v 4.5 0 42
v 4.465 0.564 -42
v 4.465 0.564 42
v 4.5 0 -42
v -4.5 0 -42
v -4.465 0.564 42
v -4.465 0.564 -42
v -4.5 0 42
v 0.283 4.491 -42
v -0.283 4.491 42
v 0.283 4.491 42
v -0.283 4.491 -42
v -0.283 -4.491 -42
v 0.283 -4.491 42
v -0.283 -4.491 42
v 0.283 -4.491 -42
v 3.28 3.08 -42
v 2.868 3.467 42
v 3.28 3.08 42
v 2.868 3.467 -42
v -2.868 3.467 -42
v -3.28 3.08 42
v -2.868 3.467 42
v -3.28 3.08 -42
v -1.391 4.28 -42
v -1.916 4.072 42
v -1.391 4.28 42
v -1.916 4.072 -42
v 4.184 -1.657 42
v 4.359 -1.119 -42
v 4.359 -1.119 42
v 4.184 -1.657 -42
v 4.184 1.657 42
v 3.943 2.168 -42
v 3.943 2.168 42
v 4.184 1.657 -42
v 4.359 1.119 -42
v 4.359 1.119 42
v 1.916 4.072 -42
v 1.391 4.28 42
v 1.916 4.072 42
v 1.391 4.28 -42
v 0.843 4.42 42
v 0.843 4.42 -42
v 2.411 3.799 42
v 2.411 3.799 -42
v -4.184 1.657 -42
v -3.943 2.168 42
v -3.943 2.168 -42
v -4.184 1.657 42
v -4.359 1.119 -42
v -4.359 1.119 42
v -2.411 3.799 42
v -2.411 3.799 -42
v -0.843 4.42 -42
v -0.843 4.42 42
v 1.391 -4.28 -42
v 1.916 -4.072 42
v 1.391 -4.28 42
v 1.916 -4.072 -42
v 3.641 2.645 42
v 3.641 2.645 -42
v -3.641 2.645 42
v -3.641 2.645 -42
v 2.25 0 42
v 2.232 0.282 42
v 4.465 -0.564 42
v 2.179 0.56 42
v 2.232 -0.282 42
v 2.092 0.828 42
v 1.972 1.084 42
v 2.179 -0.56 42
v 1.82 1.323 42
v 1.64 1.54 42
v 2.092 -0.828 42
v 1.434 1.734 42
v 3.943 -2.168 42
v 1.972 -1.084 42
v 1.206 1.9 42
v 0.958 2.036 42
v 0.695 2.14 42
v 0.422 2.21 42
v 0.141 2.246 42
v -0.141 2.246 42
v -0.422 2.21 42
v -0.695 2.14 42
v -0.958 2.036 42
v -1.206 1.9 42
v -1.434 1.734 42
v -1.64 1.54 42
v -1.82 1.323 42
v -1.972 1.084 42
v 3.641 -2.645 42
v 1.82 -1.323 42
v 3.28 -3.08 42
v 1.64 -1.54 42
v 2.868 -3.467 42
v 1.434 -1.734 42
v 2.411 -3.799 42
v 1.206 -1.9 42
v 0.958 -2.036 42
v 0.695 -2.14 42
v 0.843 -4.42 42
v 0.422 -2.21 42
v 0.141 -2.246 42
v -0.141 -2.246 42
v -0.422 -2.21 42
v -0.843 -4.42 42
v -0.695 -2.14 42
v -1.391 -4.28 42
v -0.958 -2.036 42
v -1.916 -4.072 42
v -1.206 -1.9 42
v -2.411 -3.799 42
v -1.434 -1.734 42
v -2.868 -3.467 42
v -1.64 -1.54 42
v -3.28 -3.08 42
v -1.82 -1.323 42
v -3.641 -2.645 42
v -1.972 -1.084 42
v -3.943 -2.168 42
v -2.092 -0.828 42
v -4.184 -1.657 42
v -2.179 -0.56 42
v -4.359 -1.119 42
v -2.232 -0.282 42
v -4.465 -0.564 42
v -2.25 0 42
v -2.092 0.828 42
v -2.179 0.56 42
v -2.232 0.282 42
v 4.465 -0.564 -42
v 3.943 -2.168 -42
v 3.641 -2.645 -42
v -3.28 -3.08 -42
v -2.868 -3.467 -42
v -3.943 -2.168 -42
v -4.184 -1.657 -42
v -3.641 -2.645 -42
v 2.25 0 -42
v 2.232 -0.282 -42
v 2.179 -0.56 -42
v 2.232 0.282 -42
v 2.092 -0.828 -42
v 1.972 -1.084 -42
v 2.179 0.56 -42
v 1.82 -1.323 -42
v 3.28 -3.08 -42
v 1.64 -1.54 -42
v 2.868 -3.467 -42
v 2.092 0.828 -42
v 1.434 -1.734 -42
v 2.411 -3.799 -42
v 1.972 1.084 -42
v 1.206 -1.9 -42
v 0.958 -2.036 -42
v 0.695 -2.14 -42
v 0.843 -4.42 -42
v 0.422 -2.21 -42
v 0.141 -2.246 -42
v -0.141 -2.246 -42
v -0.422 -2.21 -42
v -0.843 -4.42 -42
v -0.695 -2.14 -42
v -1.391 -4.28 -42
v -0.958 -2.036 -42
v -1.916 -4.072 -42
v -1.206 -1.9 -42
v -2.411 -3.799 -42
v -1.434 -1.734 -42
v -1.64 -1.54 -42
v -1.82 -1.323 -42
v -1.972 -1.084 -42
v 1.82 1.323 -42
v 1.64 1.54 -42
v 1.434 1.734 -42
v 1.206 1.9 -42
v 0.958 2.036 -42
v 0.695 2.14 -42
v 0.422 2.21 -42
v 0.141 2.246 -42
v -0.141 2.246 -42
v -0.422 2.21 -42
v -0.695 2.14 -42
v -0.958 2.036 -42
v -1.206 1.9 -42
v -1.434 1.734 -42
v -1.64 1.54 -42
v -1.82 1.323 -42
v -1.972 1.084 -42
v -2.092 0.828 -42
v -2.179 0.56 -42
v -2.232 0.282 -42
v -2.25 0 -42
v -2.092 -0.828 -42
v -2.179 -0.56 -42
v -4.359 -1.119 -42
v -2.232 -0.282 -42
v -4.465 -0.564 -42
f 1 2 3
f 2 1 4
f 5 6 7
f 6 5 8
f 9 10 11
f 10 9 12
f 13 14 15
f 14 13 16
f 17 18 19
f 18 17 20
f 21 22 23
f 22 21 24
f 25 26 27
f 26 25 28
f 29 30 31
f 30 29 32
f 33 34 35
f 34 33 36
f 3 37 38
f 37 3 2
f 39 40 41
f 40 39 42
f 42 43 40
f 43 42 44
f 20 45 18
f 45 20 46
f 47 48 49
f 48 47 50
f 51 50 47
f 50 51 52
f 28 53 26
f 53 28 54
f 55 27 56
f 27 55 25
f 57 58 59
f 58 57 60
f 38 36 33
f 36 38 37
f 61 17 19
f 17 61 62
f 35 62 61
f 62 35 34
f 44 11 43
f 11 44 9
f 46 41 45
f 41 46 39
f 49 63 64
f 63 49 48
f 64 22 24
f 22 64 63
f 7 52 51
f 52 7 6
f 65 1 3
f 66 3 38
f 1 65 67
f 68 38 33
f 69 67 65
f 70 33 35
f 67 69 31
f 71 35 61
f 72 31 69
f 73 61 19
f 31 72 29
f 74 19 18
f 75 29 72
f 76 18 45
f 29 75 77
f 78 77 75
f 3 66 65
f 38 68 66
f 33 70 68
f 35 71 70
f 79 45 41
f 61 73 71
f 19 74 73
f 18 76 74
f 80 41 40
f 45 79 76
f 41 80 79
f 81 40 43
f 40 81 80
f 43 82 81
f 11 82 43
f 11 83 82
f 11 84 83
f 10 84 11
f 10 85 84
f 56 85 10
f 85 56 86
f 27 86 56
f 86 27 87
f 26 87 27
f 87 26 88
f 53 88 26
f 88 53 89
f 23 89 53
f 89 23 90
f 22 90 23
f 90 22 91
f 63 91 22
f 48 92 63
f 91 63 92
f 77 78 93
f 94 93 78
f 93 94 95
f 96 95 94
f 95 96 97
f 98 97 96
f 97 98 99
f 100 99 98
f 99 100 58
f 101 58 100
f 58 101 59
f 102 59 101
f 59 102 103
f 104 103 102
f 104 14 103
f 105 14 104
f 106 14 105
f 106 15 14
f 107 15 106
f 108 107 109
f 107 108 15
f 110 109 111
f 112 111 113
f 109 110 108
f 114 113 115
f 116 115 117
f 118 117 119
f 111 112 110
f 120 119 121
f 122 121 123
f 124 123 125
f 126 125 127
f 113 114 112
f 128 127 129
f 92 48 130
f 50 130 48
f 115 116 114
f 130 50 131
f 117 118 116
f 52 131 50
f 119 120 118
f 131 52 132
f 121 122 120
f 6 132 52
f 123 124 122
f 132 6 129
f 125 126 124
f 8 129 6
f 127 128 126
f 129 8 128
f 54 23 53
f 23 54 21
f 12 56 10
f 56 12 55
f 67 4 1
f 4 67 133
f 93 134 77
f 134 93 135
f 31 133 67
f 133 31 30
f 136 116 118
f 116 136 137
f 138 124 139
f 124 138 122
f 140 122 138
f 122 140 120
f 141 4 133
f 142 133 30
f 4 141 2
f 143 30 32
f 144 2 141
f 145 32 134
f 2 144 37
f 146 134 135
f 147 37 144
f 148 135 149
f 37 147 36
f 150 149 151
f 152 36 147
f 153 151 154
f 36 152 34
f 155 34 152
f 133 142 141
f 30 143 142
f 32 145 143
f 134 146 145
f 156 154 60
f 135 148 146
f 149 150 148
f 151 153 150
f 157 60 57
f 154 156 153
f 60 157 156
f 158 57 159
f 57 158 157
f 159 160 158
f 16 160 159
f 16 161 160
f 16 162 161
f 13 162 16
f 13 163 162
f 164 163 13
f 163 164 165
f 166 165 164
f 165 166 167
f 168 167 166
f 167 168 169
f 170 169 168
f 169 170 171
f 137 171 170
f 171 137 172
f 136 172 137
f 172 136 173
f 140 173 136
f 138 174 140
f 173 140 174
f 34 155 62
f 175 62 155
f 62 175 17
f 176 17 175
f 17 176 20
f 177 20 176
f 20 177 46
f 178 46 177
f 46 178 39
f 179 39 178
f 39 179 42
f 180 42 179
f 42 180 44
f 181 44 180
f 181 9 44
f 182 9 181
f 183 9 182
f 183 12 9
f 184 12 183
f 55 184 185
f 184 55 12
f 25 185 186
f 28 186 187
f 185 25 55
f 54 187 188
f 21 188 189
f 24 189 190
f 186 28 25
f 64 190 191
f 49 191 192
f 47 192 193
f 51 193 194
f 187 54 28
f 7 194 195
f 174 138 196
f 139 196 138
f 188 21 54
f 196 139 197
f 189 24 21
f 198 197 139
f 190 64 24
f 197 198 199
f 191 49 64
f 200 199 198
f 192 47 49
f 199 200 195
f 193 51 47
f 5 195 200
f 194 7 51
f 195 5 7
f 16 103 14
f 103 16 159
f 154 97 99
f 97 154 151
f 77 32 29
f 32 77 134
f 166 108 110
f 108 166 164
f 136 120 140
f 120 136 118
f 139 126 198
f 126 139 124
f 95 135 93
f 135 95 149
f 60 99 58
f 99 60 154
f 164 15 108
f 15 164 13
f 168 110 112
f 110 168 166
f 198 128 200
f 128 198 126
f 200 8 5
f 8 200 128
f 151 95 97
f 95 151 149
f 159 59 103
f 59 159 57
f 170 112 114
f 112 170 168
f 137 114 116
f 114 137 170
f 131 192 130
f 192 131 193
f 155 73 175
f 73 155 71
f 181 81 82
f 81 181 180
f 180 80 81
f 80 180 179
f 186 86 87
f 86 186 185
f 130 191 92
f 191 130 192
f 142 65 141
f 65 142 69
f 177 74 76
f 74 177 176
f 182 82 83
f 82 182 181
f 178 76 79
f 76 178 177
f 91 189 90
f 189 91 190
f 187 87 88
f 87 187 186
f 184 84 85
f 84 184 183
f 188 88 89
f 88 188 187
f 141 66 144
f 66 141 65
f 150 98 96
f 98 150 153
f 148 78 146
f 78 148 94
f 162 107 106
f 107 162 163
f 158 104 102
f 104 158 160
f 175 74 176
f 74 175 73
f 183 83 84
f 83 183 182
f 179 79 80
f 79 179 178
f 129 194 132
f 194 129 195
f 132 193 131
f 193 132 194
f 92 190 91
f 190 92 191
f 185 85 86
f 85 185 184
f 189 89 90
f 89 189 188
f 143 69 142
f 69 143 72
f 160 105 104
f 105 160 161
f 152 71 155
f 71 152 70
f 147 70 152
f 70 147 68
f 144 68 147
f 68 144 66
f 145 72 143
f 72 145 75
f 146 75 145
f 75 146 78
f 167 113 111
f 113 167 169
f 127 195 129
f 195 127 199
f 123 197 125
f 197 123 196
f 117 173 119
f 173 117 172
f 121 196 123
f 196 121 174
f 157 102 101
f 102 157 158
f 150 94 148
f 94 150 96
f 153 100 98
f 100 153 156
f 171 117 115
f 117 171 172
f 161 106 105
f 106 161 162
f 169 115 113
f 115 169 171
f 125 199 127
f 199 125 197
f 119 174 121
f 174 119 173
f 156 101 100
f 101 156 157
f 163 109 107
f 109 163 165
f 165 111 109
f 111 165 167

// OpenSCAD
$fn = 50;


difference() {
	union() {
		translate(v = [0, 0, -42.0000000000]) {
			cylinder(h = 84, r = 4.5000000000);
		}
	}
	union() {
		translate(v = [0, 0, -100.0000000000]) {
			cylinder(h = 200, r = 2.2500000000);
		}
	}
}
